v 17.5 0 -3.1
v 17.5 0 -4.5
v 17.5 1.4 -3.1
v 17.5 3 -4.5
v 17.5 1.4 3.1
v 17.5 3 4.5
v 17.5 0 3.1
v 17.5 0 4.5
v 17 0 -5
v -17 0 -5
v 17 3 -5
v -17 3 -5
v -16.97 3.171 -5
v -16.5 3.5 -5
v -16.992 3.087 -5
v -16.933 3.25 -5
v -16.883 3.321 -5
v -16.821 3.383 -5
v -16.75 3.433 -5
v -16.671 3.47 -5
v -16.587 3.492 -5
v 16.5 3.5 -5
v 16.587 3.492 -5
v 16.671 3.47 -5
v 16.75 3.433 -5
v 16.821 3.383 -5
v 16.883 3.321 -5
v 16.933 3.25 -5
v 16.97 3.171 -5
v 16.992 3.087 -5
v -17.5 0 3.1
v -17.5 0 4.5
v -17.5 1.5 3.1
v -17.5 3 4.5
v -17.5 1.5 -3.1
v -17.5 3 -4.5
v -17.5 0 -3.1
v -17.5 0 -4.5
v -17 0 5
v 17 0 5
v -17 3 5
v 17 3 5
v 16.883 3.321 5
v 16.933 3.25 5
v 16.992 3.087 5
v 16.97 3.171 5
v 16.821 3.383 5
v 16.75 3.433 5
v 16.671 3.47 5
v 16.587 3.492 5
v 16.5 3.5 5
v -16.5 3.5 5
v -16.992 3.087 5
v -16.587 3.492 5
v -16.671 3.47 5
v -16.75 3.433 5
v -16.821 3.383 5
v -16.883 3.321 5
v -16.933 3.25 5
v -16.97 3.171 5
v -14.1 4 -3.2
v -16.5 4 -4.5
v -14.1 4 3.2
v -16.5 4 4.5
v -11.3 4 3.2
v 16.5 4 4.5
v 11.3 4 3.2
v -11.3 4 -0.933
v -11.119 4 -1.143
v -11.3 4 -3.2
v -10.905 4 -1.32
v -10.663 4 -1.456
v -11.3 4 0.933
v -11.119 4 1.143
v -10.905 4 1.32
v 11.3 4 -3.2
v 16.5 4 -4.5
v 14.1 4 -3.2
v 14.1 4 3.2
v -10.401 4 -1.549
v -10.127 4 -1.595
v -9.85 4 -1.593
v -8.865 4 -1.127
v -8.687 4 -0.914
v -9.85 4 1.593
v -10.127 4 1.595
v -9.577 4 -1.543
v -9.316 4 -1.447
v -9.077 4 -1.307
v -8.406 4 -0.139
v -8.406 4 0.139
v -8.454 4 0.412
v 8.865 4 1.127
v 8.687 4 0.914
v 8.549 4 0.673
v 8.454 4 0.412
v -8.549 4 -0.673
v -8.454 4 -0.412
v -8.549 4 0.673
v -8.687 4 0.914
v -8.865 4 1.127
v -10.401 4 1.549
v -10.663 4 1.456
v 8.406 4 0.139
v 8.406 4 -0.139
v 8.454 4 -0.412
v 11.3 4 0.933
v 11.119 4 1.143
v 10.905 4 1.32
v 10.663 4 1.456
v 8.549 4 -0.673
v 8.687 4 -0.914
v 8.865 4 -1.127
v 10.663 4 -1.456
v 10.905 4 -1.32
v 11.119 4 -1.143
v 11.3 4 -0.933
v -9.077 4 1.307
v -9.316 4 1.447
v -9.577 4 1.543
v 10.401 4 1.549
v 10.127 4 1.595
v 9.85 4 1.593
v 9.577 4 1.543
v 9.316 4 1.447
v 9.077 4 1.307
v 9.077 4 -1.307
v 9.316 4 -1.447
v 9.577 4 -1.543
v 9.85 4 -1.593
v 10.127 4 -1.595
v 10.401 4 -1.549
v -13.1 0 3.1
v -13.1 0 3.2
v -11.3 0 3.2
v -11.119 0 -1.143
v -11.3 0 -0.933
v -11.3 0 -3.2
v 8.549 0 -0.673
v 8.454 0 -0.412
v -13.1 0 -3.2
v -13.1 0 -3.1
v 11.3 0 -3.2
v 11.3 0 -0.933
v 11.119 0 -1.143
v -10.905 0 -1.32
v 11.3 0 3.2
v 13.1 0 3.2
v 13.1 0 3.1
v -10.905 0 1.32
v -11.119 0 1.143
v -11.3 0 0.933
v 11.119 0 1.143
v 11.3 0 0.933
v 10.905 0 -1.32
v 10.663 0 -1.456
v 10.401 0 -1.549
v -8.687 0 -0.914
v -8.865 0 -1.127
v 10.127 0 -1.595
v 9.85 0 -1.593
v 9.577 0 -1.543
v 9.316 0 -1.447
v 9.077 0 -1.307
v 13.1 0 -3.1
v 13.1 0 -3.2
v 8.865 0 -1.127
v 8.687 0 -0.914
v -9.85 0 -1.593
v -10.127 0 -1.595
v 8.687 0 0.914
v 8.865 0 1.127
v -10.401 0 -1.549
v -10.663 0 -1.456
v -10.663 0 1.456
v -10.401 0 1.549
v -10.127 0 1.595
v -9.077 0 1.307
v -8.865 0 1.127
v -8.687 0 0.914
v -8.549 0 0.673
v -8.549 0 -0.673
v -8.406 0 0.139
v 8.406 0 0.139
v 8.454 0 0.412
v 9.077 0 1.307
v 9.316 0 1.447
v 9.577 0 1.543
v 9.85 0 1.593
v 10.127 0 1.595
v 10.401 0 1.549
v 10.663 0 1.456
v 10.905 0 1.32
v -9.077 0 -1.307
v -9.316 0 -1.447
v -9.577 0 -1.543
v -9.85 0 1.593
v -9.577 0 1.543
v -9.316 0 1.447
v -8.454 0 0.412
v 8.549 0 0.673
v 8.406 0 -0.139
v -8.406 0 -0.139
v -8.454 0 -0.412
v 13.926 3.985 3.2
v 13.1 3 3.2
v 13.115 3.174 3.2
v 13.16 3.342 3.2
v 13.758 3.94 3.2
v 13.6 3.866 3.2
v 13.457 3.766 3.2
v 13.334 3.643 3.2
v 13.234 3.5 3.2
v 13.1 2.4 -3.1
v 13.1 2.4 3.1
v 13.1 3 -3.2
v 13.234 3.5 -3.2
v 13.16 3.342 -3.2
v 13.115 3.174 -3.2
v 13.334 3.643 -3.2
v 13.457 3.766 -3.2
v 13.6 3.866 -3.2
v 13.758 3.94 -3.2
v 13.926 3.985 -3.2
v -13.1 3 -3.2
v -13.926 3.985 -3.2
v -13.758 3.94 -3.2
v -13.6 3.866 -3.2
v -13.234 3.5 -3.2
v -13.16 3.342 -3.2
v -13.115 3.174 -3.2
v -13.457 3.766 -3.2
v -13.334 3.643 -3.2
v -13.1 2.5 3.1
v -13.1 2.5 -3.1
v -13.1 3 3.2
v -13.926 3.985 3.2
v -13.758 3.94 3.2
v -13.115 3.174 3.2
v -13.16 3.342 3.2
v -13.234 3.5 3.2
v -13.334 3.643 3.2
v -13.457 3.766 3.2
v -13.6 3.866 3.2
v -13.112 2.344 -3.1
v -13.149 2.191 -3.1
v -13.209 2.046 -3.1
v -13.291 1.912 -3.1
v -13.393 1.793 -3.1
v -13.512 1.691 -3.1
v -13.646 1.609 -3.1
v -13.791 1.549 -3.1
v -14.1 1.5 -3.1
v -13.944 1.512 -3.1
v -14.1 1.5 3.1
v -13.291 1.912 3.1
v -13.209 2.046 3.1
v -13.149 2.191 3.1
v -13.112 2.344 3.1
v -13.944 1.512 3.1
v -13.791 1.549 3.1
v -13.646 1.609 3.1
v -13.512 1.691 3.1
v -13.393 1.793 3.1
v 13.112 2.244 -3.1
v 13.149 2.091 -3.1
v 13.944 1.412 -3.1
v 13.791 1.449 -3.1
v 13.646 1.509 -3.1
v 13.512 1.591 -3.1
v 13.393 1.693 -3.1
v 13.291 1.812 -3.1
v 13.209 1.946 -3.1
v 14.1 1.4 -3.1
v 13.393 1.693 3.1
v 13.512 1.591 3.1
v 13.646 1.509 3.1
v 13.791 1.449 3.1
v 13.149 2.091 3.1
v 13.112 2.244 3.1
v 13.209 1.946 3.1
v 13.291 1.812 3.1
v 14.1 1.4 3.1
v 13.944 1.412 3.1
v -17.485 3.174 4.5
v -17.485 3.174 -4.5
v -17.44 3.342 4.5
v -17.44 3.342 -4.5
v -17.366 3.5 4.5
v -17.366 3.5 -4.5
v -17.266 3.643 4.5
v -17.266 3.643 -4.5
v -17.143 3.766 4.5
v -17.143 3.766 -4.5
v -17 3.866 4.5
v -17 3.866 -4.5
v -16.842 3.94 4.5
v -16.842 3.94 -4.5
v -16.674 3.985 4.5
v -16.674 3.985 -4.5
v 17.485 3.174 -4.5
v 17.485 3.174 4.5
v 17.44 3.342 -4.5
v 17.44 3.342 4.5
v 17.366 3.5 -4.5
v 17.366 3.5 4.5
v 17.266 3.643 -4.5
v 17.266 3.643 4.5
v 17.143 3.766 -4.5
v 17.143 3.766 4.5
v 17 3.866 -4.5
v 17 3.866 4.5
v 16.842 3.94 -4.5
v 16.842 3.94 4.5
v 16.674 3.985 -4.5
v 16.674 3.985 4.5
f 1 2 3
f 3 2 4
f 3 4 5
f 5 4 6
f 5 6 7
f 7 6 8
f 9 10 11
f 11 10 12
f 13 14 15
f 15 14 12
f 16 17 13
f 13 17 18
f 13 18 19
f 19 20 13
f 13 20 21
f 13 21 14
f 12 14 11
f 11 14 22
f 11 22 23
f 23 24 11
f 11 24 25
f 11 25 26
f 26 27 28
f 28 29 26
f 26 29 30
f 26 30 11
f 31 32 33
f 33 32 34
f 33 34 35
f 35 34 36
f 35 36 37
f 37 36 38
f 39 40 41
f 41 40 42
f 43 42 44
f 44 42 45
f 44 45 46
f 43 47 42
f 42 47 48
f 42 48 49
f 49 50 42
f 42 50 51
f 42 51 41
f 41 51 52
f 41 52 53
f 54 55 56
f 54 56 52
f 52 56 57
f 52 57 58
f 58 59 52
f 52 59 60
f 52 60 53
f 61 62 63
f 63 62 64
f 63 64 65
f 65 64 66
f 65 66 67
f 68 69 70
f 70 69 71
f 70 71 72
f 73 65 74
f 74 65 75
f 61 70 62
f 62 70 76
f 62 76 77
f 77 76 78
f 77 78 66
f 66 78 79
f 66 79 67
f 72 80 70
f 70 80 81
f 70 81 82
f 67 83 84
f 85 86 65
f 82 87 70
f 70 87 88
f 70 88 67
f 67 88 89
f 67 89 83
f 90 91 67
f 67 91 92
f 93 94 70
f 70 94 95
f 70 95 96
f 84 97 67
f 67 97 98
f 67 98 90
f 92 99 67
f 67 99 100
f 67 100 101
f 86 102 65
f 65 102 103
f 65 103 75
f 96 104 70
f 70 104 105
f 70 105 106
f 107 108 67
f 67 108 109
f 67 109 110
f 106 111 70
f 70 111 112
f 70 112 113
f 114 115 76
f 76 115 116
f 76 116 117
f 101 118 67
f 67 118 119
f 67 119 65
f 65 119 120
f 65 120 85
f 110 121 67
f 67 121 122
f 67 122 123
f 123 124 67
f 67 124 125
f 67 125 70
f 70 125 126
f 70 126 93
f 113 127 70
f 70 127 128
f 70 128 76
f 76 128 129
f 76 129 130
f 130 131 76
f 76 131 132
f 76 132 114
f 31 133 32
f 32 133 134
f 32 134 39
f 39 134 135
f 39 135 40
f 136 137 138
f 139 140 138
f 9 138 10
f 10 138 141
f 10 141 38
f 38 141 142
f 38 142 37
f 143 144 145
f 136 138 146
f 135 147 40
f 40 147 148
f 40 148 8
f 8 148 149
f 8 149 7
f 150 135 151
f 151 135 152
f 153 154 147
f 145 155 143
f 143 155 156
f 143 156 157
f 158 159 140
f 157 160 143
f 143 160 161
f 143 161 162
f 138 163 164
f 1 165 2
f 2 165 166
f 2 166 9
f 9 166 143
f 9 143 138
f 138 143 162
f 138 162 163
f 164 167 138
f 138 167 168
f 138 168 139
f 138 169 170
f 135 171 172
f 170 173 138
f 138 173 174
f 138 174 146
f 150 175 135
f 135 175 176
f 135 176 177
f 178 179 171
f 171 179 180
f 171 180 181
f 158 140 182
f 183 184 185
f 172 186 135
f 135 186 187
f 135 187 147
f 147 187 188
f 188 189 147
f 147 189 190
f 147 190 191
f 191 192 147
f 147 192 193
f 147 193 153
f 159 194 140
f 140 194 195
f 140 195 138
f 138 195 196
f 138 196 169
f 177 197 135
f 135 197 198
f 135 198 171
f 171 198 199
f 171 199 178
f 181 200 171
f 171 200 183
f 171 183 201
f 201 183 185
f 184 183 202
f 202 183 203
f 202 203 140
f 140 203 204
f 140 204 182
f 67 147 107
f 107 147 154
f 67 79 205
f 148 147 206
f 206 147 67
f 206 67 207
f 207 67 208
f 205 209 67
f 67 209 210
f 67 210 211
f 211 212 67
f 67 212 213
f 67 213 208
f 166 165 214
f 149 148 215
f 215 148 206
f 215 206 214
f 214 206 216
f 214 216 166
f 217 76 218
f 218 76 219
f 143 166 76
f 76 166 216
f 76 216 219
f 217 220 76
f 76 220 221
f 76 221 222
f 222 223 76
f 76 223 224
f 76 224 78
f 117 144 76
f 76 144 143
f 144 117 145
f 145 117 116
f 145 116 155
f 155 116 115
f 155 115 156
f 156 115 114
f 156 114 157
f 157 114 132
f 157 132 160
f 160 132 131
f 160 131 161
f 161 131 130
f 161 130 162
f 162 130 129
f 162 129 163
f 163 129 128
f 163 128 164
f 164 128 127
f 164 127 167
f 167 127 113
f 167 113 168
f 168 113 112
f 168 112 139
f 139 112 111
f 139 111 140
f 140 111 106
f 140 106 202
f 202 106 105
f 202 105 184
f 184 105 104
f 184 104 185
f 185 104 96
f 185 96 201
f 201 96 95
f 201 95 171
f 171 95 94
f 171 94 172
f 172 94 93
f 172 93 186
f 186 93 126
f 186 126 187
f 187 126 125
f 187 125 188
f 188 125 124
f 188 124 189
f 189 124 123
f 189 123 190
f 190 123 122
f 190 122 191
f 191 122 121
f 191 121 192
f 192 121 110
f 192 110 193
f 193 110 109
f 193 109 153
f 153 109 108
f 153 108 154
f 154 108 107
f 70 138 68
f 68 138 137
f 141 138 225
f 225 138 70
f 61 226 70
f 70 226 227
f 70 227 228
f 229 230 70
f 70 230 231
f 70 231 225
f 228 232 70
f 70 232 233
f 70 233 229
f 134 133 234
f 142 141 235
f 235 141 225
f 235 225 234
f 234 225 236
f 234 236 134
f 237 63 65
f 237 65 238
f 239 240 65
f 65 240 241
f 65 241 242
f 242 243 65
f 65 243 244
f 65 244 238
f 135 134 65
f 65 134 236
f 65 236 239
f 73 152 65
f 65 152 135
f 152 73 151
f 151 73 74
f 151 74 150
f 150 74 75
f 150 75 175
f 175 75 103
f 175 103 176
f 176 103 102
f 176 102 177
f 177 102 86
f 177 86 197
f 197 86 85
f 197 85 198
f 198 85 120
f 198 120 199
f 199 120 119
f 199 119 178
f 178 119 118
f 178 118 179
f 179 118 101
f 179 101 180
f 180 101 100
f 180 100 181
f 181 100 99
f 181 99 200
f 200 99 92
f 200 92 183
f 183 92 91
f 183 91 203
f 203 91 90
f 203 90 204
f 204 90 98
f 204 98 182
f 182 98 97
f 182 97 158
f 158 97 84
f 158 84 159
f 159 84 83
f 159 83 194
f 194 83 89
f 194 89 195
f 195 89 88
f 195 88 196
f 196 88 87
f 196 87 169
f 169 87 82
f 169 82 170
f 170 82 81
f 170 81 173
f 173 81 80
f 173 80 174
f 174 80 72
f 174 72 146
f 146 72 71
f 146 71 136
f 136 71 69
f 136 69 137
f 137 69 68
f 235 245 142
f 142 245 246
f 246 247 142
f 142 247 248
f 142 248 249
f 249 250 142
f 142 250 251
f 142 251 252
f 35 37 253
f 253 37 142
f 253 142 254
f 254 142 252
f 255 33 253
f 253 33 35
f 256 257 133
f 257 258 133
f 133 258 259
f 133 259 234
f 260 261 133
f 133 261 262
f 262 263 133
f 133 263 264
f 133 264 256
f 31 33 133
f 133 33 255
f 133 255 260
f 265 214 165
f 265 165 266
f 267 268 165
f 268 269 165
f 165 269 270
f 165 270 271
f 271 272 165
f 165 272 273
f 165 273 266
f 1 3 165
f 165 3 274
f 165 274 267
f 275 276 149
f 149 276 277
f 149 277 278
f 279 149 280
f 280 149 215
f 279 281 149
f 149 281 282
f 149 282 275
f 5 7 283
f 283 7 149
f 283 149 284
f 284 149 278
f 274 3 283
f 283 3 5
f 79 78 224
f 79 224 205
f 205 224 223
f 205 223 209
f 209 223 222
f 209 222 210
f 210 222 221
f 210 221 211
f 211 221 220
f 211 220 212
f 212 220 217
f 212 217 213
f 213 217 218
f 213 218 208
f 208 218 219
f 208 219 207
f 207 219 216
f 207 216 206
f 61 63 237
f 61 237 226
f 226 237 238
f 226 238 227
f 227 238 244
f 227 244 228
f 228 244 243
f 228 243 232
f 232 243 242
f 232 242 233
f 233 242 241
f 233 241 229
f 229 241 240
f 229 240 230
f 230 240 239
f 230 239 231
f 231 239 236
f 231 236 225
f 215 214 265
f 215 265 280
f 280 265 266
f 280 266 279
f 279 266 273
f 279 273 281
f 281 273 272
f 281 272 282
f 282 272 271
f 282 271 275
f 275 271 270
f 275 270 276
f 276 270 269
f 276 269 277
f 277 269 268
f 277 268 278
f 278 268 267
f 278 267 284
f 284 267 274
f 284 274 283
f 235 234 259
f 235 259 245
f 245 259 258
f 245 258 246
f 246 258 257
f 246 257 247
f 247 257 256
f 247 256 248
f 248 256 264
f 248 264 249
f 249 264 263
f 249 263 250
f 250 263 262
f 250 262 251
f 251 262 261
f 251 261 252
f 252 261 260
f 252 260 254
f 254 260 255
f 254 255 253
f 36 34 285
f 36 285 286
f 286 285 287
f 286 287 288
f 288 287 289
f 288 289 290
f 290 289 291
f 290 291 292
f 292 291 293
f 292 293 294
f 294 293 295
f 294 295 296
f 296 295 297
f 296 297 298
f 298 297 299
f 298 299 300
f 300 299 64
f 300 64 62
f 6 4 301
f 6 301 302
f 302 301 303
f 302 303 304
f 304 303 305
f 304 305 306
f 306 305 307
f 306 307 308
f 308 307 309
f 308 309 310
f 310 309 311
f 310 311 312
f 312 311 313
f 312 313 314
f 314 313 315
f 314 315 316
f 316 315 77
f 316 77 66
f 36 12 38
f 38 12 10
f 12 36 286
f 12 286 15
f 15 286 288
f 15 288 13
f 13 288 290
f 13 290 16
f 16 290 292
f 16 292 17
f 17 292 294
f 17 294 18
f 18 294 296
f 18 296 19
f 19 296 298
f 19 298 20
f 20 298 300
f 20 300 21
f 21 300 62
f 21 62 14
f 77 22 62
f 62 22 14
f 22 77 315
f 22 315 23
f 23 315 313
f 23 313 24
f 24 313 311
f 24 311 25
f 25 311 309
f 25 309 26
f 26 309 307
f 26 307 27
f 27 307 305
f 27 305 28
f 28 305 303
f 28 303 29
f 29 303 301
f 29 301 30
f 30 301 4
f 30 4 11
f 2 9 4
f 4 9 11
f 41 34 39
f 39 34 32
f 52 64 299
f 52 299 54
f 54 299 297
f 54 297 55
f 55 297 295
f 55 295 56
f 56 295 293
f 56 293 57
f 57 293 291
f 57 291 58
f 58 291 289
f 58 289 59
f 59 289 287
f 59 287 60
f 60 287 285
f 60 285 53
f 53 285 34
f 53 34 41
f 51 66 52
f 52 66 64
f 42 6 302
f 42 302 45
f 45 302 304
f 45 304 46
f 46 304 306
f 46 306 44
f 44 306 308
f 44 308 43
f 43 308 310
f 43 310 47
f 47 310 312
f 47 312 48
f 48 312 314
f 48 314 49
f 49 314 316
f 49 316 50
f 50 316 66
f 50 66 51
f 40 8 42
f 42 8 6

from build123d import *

# Parameters (mm, degrees)
SKETCH2_W           = 35
SKETCH2_H           = 10
BOSS_EXTRUDE1_DEPTH = 4
CUT_EXTRUDE1_DEPTH  = 4
SKETCH4_W           = 6.2
SKETCH4_H           = 1.5
CUT_EXTRUDE2_DEPTH  = 4.4
SKETCH5_W           = 6.2
SKETCH5_H           = 1.4
CUT_EXTRUDE3_DEPTH  = 4.4
FILLET1_R           = 1
FILLET2_R           = 1
CHAMFER1_SIZE       = 0.5


with BuildPart() as part:
    # Sketch2 → Boss-Extrude1 (new body)
    with BuildSketch(Plane(origin=(0, 0, 0), x_dir=(1, 0, 0), z_dir=(0, 1, 0))):
        Rectangle(SKETCH2_W, SKETCH2_H)
    extrude(amount=BOSS_EXTRUDE1_DEPTH)

    # Sketch3 → Cut-Extrude1 (cut)
    with BuildSketch(Plane(origin=(0, 4, 0), x_dir=(1, 0, 0), z_dir=(0, 1, 0))):
        with BuildLine():
            Line((-11.3, 0.932737905), (-11.3, 3.2))
            Line((-11.3, 3.2), (-13.1, 3.2))
            Line((-13.1, 3.2), (-13.1, -3.2))
            Line((-13.1, -3.2), (-11.3, -3.2))
            Line((-11.3, -3.2), (-11.3, -0.932737905))
            ThreePointArc((-11.3, -0.932737905), (-8.4, 0), (-11.3, 0.932737905))
        make_face()
        with BuildLine():
            Line((11.3, -3.2), (11.3, -0.932737905))
            ThreePointArc((11.3, -0.932737905), (8.4, 0), (11.3, 0.932737905))
            Line((11.3, 0.932737905), (11.3, 3.2))
            Line((11.3, 3.2), (13.1, 3.2))
            Line((13.1, 3.2), (13.1, -3.2))
            Line((13.1, -3.2), (11.3, -3.2))
        make_face()
    extrude(amount=-CUT_EXTRUDE1_DEPTH, mode=Mode.SUBTRACT)

    # Sketch4 → Cut-Extrude2 (cut)
    with BuildSketch(Plane.ZY.offset(17.5)):
        with Locations((0, 0.75)):
            Rectangle(SKETCH4_W, SKETCH4_H)
    extrude(amount=-CUT_EXTRUDE2_DEPTH, mode=Mode.SUBTRACT)

    # Sketch5 → Cut-Extrude3 (cut)
    with BuildSketch(Plane(origin=(17.5, 0, 0), x_dir=(0, 0, -1), z_dir=(1, 0, 0))):
        with Locations((0, 0.7)):
            Rectangle(SKETCH5_W, SKETCH5_H)
    extrude(amount=-CUT_EXTRUDE3_DEPTH, mode=Mode.SUBTRACT)

    # Fillet1
    fillet1_edges = [part.edges().sort_by_distance(p)[0] for p in [
        (-13.1, 4, 0),
        (13.1, 4, 0),
        (-13.1, 1.5, 0),
        (13.1, 1.4, 0),
    ]]
    fillet(fillet1_edges, radius=FILLET1_R)

    # Fillet2
    fillet2_edges = [part.edges().sort_by_distance(p)[0] for p in [
        (-17.5, 4, 0),
        (17.5, 4, 0),
    ]]
    fillet(fillet2_edges, radius=FILLET2_R)

    # Chamfer1
    chamfer1_edges = [part.edges().sort_by_distance(p)[0] for p in [
        (0, 4, -5),
        (0, 4, 5),
        (17.5, 1.5, 5),
        (-17.5, 1.5, 5),
        (17.207106781, 3.707106781, 5),
        (-17.207106781, 3.707106781, 5),
        (-17.5, 1.5, -5),
        (17.5, 1.5, -5),
        (17.207106781, 3.707106781, -5),
        (-17.207106781, 3.707106781, -5),
    ]]
    chamfer(chamfer1_edges, length=CHAMFER1_SIZE)


solid = part.part
